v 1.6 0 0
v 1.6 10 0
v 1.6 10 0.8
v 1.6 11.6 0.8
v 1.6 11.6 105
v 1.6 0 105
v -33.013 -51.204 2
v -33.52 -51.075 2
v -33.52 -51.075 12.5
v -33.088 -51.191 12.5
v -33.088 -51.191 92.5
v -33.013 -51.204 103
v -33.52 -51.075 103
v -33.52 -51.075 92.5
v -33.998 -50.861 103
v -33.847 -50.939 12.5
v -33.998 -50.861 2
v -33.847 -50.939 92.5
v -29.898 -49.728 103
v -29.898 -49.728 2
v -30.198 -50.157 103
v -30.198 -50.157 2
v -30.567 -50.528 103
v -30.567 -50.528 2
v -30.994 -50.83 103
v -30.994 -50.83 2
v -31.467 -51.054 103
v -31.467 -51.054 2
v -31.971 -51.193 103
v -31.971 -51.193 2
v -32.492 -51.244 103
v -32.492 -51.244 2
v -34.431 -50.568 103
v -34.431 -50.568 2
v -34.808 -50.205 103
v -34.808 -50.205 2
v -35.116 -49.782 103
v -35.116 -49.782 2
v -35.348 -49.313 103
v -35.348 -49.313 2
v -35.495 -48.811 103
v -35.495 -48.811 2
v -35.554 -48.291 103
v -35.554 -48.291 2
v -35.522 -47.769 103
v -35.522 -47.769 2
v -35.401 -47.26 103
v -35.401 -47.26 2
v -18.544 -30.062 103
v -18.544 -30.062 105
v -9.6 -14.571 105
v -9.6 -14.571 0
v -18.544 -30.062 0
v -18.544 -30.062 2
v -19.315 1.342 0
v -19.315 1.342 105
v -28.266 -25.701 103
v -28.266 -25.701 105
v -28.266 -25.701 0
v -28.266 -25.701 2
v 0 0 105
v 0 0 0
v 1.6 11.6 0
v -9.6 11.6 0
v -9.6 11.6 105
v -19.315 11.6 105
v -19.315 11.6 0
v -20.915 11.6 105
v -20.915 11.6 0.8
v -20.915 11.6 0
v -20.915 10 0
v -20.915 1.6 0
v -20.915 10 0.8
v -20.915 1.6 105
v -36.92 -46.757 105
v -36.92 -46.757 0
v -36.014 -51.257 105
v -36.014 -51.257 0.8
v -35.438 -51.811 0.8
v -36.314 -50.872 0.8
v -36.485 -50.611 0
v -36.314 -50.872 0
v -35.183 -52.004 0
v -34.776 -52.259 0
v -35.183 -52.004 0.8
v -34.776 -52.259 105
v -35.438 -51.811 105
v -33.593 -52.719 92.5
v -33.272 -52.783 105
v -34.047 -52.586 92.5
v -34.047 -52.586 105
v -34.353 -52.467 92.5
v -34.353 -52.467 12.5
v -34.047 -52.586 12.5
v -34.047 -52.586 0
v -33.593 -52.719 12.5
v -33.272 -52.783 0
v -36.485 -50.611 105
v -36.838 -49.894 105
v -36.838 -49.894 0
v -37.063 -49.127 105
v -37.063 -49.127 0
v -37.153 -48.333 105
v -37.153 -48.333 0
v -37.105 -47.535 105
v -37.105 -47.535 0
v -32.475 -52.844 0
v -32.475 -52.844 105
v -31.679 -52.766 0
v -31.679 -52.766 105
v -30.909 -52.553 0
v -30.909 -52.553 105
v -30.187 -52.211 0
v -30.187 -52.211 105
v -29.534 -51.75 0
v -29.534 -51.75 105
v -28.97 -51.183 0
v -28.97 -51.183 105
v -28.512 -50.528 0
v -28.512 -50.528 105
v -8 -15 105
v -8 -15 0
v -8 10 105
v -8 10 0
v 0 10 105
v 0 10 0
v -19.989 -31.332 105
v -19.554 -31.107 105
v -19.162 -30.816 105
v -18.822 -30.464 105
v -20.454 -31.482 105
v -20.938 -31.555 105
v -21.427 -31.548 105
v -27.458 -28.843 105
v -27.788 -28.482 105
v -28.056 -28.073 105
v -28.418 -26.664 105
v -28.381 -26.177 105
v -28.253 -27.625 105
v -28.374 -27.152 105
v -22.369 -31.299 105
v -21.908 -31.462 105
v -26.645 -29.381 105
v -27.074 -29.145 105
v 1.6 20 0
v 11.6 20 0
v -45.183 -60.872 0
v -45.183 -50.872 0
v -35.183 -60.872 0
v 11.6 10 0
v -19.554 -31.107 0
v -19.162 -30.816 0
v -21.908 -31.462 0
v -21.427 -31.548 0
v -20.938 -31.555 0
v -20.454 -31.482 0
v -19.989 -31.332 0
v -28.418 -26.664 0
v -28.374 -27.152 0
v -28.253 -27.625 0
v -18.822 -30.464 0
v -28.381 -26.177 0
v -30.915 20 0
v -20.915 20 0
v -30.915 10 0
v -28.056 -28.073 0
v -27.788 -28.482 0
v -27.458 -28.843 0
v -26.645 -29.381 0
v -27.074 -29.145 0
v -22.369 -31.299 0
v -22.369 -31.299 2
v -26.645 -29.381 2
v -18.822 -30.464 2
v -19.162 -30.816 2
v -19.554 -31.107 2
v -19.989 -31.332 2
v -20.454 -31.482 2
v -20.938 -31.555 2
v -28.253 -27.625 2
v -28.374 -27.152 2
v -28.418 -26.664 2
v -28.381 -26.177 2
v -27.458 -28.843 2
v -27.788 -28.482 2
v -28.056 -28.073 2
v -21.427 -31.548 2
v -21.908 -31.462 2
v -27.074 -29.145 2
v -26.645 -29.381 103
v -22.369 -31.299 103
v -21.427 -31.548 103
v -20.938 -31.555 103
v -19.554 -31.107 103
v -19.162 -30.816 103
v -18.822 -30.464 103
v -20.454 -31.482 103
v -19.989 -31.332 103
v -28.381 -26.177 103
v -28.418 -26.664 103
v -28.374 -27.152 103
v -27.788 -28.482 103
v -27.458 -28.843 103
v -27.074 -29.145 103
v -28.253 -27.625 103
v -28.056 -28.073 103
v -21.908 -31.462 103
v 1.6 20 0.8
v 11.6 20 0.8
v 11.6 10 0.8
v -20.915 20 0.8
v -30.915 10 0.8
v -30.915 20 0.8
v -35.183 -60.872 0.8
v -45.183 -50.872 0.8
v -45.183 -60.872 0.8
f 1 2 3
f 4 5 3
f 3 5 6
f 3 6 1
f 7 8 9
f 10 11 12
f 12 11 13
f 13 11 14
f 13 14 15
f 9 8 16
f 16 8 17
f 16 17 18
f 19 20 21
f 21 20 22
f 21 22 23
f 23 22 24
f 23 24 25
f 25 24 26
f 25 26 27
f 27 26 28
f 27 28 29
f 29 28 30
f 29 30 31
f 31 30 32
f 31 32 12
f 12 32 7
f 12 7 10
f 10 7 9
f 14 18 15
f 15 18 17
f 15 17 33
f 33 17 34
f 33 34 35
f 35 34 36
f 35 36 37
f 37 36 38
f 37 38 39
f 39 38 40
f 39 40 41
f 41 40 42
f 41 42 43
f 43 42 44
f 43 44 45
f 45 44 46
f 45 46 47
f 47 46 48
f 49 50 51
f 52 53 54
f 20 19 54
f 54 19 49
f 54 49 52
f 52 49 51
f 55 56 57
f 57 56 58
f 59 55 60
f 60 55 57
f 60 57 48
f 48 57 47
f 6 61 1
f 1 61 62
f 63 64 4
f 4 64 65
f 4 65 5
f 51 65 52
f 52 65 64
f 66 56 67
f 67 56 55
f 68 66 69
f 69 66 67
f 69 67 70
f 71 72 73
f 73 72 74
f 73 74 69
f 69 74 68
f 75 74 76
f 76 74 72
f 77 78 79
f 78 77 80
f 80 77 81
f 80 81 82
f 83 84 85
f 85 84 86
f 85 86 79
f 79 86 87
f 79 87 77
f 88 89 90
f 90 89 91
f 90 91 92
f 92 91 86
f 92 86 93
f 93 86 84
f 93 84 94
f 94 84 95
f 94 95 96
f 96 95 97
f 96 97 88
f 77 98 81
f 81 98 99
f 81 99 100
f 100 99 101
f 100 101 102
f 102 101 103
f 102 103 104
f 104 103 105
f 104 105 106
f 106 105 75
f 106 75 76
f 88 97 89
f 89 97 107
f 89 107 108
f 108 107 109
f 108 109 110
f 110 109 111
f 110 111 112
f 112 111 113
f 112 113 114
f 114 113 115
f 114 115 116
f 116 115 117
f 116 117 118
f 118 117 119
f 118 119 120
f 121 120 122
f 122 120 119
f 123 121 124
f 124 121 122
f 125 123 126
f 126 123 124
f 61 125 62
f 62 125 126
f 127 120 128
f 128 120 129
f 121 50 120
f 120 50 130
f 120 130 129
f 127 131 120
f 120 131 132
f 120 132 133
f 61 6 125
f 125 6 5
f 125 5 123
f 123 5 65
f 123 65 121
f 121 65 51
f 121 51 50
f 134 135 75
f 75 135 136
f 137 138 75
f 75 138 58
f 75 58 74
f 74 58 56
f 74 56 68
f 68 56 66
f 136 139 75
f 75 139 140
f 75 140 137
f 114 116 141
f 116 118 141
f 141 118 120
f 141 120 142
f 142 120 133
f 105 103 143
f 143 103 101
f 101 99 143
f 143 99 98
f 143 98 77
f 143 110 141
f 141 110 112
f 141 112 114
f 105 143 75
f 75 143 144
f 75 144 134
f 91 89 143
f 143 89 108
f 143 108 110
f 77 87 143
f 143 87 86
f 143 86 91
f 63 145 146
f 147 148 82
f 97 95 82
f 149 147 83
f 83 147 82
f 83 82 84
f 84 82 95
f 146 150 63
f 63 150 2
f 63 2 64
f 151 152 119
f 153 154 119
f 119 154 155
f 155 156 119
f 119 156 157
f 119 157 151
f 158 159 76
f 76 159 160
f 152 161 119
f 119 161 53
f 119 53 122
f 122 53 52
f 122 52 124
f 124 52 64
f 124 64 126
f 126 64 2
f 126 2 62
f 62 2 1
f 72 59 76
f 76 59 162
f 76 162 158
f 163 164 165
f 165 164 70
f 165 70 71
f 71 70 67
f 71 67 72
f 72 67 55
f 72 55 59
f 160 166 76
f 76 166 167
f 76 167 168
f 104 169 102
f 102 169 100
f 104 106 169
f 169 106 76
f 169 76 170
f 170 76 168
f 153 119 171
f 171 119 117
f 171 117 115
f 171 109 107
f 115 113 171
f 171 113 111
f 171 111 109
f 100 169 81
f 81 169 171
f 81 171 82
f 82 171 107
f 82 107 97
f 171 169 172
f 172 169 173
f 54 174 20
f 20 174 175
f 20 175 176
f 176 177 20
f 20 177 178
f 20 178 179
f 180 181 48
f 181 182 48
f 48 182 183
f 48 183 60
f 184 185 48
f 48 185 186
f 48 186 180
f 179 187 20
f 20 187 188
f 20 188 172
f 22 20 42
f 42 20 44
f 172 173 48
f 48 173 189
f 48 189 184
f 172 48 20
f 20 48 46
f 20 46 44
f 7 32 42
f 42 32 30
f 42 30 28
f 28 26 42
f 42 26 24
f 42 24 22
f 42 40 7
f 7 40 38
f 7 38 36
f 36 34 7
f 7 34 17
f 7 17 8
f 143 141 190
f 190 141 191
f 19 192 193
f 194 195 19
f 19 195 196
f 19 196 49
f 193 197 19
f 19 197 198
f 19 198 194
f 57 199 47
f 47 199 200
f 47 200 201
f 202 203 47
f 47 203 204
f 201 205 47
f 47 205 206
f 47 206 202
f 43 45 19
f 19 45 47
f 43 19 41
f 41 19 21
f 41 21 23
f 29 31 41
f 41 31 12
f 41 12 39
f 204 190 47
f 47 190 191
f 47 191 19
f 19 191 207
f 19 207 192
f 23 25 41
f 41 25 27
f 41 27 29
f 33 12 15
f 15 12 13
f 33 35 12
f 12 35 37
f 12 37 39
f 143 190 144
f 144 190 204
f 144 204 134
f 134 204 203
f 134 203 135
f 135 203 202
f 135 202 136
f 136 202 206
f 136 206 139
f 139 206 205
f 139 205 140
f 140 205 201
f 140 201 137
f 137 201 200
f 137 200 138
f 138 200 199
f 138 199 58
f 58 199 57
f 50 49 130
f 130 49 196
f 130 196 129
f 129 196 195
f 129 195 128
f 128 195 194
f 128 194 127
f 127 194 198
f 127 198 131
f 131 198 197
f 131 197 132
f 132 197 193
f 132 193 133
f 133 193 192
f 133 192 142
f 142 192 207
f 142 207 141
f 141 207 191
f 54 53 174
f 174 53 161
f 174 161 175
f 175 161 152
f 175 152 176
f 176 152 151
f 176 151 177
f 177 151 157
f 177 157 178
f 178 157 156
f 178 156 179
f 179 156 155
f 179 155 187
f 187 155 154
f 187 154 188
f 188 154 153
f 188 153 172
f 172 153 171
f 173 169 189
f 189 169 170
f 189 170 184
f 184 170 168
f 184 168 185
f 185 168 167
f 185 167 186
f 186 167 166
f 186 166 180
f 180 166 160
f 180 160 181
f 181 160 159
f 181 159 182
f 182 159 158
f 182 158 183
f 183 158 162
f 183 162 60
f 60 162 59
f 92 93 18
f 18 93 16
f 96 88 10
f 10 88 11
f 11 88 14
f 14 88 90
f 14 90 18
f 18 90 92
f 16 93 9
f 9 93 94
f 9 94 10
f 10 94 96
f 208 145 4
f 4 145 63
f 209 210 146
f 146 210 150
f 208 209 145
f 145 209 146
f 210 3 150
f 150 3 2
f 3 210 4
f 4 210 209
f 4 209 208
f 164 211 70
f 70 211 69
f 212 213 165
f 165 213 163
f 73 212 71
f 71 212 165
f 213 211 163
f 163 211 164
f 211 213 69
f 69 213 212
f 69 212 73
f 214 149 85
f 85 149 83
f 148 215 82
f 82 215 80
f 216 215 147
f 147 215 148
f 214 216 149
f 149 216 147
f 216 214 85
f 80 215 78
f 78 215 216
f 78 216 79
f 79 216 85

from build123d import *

# Parameters (mm, degrees)
BOSS_EXTRUDE1_DEPTH     = 105
BOSS_EXTRUDE2_DEPTH     = 2
FILLET1_R               = 3
CUT_EXTRUDE1_DEPTH      = 40
CUT_EXTRUDE1_DEPTH_BACK = 40
SKETCH4_W               = 10
SKETCH4_H               = 10
BOSS_EXTRUDE3_DEPTH     = 0.8


with BuildPart() as part:
    # Sketch1 → Boss-Extrude1 (new body)
    with BuildSketch(Plane.XY):
        with BuildLine():
            Line((0, 0), (0, 10))
            Line((0, 10), (-8, 10))
            Line((-8, 10), (-8, -15))
            Line((-8, -15), (-28.512191548, -50.528157935))
            ThreePointArc((-28.512191548, -50.528157935), (-34.418441215, -52.438299786), (-36.919980235, -46.757214542))
            Line((-36.919980235, -46.757214542), (-20.915152124, 1.6))
            Line((-20.915152124, 1.6), (-20.915152124, 11.6))
            Line((-20.915152124, 11.6), (-19.315152124, 11.6))
            Line((-19.315152124, 11.6), (-19.315152124, 1.342102465))
            Line((-19.315152124, 1.342102465), (-35.401013831, -47.259948135))
            ThreePointArc((-35.401013831, -47.259948135), (-33.763672062, -50.978410285), (-29.897832194, -49.728157935))
            Line((-29.897832194, -49.728157935), (-9.6, -14.571281292))
            Line((-9.6, -14.571281292), (-9.6, 11.6))
            Line((-9.6, 11.6), (1.6, 11.6))
            Line((1.6, 11.6), (1.6, 0))
            Line((1.6, 0), (0, 0))
        make_face()
    extrude(amount=BOSS_EXTRUDE1_DEPTH)

    # Sketch2 → Boss-Extrude2 (add)
    with BuildSketch(Plane(origin=(0, 0, 0), x_dir=(-1, 0, 0), z_dir=(0, 0, -1))):
        with BuildLine():
            Line((35.401013831, -47.259948135), (29.116843924, -28.272868091))
            Line((29.116843924, -28.272868091), (19.897832194, -32.407649859))
            Line((19.897832194, -32.407649859), (29.897832194, -49.728157935))
            ThreePointArc((29.897832194, -49.728157935), (33.763672062, -50.978410285), (35.401013831, -47.259948135))
        make_face()
    boss_extrude2 = extrude(amount=-BOSS_EXTRUDE2_DEPTH)

    # Mirror1: Boss-Extrude2 across plane
    add(boss_extrude2.mirror(Plane.XY.offset(52.5)))

    # Fillet1
    fillet1_edges = [part.edges().sort_by_distance(p)[0] for p in [
        (-19.897832194, -32.407649859, 1),
        (-29.116843924, -28.272868091, 1),
        (-29.116843924, -28.272868091, 104),
        (-19.897832194, -32.407649859, 104),
    ]]
    fillet(fillet1_edges, radius=FILLET1_R)

    # Sketch3 → Cut-Extrude1 (cut, two sides: drawn at the far end of the back side and taken through both)
    with BuildSketch(Plane.XY.offset(52.5).offset(-CUT_EXTRUDE1_DEPTH_BACK)):
        with BuildLine():
            Line((-32.143379325, -48.338130177), (-33.714421802, -53.084900187))
            ThreePointArc((-33.714421802, -53.084900187), (-34.219846801, -53.33895839), (-34.473905004, -52.833533391))
            Line((-34.473905004, -52.833533391), (-32.902862527, -48.08676338))
            ThreePointArc((-32.902862527, -48.08676338), (-32.397437528, -47.832705178), (-32.143379325, -48.338130177))
        make_face()
    extrude(amount=CUT_EXTRUDE1_DEPTH + CUT_EXTRUDE1_DEPTH_BACK, mode=Mode.SUBTRACT)

    # Sketch4 → Boss-Extrude3 (add)
    with BuildSketch(Plane(origin=(0, 0, 0), x_dir=(-1, 0, 0), z_dir=(0, 0, -1))):
        with Locations((-6.6, 15)):
            Rectangle(SKETCH4_W, SKETCH4_H)
        with Locations((25.915152124, 15)):
            Rectangle(SKETCH4_W, SKETCH4_H)
        with Locations((40.183119354, -55.872445207)):
            Rectangle(SKETCH4_W, SKETCH4_H)
    extrude(amount=-BOSS_EXTRUDE3_DEPTH)


solid = part.part
